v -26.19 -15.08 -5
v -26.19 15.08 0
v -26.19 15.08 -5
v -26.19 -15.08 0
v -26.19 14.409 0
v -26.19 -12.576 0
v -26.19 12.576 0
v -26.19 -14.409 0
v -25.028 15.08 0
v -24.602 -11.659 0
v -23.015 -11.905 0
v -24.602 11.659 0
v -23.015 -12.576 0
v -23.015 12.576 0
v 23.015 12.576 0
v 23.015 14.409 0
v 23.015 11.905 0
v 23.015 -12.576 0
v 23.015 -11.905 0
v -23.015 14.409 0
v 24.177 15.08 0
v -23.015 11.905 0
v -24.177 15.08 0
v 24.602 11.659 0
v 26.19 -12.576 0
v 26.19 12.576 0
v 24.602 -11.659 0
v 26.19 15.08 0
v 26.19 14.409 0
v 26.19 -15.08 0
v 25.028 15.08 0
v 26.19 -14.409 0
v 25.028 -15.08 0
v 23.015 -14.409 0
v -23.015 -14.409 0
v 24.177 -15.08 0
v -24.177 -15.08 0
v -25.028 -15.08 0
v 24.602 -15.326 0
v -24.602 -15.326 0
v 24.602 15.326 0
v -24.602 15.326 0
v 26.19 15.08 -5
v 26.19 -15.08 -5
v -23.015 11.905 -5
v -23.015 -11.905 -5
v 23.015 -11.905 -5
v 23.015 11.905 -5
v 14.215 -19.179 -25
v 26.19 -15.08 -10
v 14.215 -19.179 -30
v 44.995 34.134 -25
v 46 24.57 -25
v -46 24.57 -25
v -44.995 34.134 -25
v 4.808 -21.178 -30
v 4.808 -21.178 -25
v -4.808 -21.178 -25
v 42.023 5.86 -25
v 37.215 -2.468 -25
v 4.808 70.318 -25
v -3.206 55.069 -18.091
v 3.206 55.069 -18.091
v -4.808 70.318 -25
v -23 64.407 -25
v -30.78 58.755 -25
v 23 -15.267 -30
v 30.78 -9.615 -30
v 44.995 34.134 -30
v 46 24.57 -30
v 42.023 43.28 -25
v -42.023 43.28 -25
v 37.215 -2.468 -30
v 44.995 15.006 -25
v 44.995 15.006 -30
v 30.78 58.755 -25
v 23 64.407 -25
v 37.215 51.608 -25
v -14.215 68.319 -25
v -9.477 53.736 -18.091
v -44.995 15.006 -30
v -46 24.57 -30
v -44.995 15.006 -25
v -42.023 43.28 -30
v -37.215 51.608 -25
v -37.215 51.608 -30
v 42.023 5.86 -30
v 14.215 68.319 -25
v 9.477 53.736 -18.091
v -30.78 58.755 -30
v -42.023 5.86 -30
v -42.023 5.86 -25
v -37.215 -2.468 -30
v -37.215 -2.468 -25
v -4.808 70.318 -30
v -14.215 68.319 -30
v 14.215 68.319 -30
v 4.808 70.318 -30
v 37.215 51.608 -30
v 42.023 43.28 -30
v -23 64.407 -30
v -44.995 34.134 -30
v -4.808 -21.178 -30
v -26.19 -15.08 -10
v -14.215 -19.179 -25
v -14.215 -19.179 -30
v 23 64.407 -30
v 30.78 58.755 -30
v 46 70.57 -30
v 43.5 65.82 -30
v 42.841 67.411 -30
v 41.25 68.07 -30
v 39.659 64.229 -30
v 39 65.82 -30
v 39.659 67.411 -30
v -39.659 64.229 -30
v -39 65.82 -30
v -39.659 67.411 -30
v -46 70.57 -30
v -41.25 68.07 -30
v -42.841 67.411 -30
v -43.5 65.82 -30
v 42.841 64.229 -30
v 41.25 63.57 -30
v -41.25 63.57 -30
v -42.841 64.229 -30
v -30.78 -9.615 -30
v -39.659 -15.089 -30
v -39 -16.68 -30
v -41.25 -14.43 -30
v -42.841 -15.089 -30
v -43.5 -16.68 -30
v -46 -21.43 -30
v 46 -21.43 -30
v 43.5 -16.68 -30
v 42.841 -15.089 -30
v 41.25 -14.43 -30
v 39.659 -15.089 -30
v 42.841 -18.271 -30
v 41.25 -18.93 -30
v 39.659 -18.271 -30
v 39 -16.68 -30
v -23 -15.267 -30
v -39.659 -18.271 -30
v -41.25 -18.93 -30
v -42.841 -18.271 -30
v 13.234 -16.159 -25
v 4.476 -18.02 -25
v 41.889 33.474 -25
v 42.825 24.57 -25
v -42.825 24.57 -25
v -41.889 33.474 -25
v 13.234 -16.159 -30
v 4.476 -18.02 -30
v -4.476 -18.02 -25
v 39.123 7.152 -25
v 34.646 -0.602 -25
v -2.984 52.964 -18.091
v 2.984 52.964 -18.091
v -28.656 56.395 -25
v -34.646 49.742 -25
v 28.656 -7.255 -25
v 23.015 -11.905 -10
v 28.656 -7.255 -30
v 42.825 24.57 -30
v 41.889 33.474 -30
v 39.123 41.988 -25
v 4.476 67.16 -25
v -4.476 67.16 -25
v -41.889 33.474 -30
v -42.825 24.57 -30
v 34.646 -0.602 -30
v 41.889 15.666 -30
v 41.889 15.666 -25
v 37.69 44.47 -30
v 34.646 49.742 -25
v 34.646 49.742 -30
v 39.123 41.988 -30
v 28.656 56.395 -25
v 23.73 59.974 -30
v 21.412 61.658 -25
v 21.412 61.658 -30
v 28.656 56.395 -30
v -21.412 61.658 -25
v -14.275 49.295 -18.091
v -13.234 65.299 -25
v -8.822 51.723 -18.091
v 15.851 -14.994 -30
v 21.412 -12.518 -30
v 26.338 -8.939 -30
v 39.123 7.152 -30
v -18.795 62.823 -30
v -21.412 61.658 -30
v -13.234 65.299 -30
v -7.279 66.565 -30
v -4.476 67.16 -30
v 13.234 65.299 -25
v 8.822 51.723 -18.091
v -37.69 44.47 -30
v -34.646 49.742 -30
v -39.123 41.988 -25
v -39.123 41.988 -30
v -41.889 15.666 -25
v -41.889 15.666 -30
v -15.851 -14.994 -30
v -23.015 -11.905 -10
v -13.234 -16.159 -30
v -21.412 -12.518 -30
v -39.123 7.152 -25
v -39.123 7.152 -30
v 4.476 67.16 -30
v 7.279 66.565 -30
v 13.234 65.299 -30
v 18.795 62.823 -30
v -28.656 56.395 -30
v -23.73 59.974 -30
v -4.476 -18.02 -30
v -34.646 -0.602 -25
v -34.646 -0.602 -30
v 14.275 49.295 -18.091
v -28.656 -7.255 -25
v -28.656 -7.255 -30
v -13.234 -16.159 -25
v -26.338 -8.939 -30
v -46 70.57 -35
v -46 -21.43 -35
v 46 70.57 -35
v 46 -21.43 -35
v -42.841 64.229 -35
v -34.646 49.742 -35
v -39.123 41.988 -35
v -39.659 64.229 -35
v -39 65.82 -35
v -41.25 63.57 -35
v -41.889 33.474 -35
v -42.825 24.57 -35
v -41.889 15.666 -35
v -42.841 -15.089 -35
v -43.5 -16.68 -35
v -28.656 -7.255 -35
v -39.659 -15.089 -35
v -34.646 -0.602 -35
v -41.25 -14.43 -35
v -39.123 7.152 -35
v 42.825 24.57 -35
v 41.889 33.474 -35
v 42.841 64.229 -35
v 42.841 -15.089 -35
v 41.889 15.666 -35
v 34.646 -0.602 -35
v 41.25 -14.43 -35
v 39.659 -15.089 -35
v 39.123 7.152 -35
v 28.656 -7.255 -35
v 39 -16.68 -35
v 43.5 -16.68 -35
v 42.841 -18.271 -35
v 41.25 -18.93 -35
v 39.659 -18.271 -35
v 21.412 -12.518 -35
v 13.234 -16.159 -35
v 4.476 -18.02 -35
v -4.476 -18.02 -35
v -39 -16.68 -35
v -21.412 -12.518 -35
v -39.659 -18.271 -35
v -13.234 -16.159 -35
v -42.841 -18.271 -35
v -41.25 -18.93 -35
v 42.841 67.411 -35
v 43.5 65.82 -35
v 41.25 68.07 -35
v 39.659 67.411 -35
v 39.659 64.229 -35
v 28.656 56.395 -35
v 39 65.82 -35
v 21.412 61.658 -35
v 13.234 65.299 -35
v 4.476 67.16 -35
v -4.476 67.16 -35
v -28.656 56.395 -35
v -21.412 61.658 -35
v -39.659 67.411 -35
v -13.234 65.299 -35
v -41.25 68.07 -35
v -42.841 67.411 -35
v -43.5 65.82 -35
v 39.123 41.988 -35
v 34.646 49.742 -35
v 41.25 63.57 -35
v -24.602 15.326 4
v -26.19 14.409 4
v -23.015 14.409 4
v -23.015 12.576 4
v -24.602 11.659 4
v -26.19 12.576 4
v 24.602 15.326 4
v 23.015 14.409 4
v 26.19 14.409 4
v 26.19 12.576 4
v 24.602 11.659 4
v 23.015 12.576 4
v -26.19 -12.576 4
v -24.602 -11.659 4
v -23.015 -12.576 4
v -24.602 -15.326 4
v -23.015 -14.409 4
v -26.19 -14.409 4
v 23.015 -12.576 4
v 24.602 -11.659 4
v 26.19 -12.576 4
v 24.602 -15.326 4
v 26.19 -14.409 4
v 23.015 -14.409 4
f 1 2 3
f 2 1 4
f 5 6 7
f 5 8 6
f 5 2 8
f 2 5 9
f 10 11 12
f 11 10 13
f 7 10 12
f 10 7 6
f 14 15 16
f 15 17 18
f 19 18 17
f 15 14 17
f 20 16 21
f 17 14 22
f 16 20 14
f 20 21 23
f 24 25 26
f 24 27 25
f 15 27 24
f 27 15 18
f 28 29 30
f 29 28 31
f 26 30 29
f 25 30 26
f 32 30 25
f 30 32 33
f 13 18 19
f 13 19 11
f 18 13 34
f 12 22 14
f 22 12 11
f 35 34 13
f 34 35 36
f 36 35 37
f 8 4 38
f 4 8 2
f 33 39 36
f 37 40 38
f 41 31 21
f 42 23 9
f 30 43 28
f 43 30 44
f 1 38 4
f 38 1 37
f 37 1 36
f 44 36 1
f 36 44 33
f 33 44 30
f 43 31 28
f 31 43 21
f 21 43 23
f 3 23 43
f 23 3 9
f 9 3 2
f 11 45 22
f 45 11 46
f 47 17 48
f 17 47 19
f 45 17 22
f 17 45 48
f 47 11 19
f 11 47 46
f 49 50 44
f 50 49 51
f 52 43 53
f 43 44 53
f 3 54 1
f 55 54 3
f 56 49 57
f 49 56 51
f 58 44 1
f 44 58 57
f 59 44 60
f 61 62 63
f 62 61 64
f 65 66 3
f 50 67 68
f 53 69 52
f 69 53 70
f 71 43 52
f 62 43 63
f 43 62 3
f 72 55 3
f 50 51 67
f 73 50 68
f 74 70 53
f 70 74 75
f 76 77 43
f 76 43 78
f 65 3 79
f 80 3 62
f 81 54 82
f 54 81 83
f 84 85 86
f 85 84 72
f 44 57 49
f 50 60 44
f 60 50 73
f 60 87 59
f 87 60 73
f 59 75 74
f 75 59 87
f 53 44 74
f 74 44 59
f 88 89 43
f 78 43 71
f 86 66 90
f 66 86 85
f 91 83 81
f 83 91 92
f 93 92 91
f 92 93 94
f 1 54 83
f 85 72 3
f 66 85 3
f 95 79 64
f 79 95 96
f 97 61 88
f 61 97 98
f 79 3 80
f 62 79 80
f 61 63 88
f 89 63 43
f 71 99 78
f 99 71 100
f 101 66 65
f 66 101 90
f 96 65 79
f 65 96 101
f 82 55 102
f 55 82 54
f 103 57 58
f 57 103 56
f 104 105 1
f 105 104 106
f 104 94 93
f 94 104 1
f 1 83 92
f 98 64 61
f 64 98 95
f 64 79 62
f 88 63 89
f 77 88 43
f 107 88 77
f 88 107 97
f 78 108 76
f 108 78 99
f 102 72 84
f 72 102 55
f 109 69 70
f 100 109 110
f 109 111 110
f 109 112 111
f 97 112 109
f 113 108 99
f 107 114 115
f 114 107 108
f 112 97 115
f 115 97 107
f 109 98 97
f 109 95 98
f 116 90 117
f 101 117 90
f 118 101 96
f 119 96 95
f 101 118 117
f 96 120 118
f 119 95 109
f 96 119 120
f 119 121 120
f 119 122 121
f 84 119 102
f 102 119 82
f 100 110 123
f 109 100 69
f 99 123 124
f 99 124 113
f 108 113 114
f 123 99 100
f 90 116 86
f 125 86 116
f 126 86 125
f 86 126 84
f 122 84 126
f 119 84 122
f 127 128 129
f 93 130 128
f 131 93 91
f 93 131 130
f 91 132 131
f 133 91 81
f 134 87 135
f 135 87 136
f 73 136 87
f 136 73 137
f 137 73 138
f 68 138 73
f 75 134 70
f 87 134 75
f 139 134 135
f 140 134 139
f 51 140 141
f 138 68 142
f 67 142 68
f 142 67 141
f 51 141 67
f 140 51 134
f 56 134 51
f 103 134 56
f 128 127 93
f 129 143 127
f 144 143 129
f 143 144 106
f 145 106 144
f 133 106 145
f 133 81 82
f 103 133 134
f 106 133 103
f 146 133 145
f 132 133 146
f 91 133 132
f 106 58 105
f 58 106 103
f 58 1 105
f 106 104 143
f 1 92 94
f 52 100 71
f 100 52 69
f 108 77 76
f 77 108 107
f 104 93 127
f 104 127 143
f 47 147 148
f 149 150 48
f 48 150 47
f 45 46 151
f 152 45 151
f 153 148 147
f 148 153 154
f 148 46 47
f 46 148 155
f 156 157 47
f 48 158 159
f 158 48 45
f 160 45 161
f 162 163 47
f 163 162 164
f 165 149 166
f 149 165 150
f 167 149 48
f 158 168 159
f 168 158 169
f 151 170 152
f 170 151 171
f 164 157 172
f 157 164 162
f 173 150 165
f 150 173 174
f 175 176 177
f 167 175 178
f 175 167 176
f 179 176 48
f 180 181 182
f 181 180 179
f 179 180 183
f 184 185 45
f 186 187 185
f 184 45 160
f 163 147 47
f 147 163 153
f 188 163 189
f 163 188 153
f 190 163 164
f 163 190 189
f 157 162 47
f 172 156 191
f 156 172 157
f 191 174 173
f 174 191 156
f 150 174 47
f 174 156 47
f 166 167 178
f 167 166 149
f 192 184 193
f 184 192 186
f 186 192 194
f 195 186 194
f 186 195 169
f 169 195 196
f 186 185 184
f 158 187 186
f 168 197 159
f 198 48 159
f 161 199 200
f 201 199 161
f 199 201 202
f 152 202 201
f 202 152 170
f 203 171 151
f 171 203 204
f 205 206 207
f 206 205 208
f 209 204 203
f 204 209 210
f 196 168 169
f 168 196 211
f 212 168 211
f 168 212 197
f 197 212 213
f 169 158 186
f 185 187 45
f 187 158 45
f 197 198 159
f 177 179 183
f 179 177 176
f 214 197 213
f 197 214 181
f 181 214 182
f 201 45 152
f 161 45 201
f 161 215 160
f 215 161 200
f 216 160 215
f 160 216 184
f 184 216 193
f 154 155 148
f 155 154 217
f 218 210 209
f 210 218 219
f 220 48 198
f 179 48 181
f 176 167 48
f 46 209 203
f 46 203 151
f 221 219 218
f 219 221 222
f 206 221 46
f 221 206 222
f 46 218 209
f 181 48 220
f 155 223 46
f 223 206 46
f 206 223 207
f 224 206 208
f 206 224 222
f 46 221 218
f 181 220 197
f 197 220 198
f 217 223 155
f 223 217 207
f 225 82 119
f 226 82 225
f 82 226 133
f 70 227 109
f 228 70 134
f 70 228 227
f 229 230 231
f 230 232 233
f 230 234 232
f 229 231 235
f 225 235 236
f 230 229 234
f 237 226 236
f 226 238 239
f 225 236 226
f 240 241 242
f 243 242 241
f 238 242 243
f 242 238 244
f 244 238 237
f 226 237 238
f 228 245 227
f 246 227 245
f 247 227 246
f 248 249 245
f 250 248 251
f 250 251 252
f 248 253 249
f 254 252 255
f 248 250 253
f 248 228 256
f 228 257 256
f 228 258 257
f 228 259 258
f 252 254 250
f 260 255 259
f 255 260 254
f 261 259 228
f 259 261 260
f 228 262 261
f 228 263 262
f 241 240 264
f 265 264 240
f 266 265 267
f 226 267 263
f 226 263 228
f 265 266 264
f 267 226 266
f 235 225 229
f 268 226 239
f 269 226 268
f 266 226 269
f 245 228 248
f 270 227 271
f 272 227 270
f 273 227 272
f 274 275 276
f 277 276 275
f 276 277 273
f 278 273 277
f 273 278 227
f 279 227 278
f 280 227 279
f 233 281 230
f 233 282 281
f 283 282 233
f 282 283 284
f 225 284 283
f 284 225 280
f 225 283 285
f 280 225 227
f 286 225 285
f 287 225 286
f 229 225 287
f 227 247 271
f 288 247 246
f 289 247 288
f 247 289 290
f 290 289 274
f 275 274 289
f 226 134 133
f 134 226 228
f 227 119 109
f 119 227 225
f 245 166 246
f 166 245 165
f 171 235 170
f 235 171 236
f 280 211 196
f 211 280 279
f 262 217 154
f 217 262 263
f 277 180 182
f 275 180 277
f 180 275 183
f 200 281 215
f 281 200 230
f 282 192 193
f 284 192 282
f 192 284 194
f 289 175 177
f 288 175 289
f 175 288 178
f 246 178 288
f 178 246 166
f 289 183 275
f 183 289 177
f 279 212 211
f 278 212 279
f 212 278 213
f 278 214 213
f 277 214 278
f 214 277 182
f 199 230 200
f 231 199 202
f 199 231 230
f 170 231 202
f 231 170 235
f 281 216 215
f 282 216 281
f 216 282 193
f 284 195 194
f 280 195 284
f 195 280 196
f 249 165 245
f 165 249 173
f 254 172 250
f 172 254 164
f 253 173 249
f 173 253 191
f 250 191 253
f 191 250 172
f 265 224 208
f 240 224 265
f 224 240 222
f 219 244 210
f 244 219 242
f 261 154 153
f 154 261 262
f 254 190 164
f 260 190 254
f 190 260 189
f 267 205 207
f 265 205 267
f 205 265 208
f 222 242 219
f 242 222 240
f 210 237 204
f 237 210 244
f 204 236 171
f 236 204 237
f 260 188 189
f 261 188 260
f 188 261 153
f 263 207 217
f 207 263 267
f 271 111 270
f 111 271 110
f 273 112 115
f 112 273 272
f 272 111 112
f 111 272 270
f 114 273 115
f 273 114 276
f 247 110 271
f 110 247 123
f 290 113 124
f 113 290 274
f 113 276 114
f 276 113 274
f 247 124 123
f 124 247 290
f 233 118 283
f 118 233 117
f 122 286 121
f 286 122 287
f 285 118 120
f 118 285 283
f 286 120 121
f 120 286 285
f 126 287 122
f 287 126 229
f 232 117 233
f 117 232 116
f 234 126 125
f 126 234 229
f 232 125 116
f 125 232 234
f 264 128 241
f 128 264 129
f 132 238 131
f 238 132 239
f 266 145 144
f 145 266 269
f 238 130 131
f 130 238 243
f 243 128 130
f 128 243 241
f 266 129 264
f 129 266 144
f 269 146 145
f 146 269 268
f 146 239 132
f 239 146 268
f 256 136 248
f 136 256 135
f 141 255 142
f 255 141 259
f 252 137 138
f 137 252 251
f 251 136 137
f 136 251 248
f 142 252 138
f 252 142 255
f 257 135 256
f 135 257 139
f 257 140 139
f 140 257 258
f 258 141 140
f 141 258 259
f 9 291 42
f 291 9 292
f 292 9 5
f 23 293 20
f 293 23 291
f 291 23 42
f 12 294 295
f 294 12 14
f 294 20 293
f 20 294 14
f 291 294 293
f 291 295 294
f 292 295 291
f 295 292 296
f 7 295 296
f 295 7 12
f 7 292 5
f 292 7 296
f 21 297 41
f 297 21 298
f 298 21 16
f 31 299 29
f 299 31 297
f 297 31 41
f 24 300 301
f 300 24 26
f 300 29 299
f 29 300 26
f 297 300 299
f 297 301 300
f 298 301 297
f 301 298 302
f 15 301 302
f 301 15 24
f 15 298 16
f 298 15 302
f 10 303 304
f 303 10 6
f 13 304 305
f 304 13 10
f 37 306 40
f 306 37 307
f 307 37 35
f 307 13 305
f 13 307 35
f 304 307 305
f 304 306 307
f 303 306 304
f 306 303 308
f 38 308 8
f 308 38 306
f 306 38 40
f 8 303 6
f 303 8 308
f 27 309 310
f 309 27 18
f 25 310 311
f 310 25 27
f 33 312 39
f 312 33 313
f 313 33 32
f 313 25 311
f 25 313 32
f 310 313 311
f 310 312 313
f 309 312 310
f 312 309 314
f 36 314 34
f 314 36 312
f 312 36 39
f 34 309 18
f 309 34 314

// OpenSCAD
// Base measurements

// Projector air grille
rectWidth = 52.38;
rectHeight = 30.16;

// Projector air grille pegs
pegHeight = 4;
pegDiameter = 3.175;

// External fan
circleRadius = (92 / 2);
circularFlangeScrewHoleDistance = 82.5;
screwHoleDiameter=4.5;

// Adapter
extrusionHeight = 20;
rearFanDistanceAboveRectTop = 6.35;
flangeHeight = 5;
hullThickness = 3.175;

// Derived measurements
pegRadius = pegDiameter / 2;
halfHullThickness = hullThickness / 2;
halfRectWidth = rectWidth / 2;
halfRectHeight = rectHeight / 2;
 
 // Hexapegs
 
 // Bottom right (Looking at circle through rectangle)
 translate([-halfRectWidth + halfHullThickness, halfRectHeight - halfHullThickness, 0 ]) hexapeg(pegHeight, pegRadius);
 
 // Bottom left (Looking at circle through rectangle)
 translate([halfRectWidth - halfHullThickness, halfRectHeight - halfHullThickness, 0 ]) hexapeg(pegHeight, pegRadius);
 
 // Upper right (Looking at circle through rectangle)
 translate([(-halfRectWidth) + halfHullThickness, (-halfRectHeight) + halfHullThickness, 0 ]) hexapeg(pegHeight, pegRadius);
 
  // Upper left (Looking at circle through rectangle)
 translate([halfRectWidth - halfHullThickness, (-halfRectHeight) + halfHullThickness, 0 ]) hexapeg(pegHeight, pegRadius);
 
 // Rectangular-side flange
 translate([0,0,-flangeHeight]) difference() {
    rectangularbase(rectWidth, rectHeight, flangeHeight);
    rectangularbase(rectWidth - (hullThickness * 2), rectHeight - (hullThickness * 2), flangeHeight);
 }
 
 // Circular-side flange
 circularSideFlangeDimen = circleRadius * 2;
 translate([0, circleRadius - rectHeight/2 -rearFanDistanceAboveRectTop, -flangeHeight * 3 - extrusionHeight]) difference() {
    rectangularbase(circularSideFlangeDimen, circularSideFlangeDimen, flangeHeight);
    cylinder(r=circleRadius - hullThickness,h=flangeHeight);
    //rectangularbase(circularSideFlangeDimen - (hullThickness * 2), circularSideFlangeDimen - (hullThickness * 2), flangeHeight);
     
     // Screw holes
     // Bottom Right looking through circle at rectangle
     translate([circularFlangeScrewHoleDistance/2, circularFlangeScrewHoleDistance/2, 0]) cylinder(r=screwHoleDiameter/2 , h=flangeHeight);
     
     // Bottom Left
     translate([-circularFlangeScrewHoleDistance/2, circularFlangeScrewHoleDistance/2, 0]) cylinder(r=screwHoleDiameter/2 , h=flangeHeight);
     
     // Top Left
     translate([-circularFlangeScrewHoleDistance/2, -circularFlangeScrewHoleDistance/2, 0]) cylinder(r=screwHoleDiameter/2 , h=flangeHeight);
     
     // Top Right
     translate([circularFlangeScrewHoleDistance/2, -circularFlangeScrewHoleDistance/2, 0]) cylinder(r=screwHoleDiameter/2 , h=flangeHeight);
 }

 
// Hull + Circular flange
translate([0,0,-flangeHeight * 2]) difference() {
    // Outer hull
    adapterHull(rectWidth, rectHeight, circleRadius, extrusionHeight, rearFanDistanceAboveRectTop, flangeHeight);

    // Inner hull
    adapterHull(rectWidth - (hullThickness * 2), rectHeight - (hullThickness * 2), circleRadius - hullThickness, extrusionHeight, rearFanDistanceAboveRectTop, flangeHeight);
}

module adapterHull(rectWidth, rectHeight, circleRadius, hullHeight, rectTopToCircleTopOffset, flangeHeight) {
    hull() {
        rectangularbase(rectWidth, rectHeight, flangeHeight);
        translate([0,circleRadius - rectHeight/2 - rectTopToCircleTopOffset, -hullHeight / 2.2]) cylinder(r=circleRadius / 1.5, height = 1);
        translate([0,circleRadius - rectHeight/2 - rectTopToCircleTopOffset, -hullHeight]) cylinder(r=circleRadius,h=flangeHeight);
    }
}

module rectangularbase(rectWidth, rectHeight, depth) {
    translate([-rectWidth/2,-rectHeight/2, 0]) cube([rectWidth, rectHeight, depth]);
}

module hexapeg(pegHeight, pegRadius) {
    linear_extrude(height = pegHeight) {
        hexagon(pegRadius,0,0);
    }
}

module hexagon(r,x,y){

polygon(points=[[(r+x),(r*(tan(30)))+y],
                [x,(r*(2/sqrt(3)))+y],
                [-r+x,(r*(tan(30)))+y],
                [-r+x,-(r*(tan(30)))+y],
                [x,-(r*(2/sqrt(3)))+y], 
                [r+x,-(r*(tan(30)))+y]]);
         
 }
